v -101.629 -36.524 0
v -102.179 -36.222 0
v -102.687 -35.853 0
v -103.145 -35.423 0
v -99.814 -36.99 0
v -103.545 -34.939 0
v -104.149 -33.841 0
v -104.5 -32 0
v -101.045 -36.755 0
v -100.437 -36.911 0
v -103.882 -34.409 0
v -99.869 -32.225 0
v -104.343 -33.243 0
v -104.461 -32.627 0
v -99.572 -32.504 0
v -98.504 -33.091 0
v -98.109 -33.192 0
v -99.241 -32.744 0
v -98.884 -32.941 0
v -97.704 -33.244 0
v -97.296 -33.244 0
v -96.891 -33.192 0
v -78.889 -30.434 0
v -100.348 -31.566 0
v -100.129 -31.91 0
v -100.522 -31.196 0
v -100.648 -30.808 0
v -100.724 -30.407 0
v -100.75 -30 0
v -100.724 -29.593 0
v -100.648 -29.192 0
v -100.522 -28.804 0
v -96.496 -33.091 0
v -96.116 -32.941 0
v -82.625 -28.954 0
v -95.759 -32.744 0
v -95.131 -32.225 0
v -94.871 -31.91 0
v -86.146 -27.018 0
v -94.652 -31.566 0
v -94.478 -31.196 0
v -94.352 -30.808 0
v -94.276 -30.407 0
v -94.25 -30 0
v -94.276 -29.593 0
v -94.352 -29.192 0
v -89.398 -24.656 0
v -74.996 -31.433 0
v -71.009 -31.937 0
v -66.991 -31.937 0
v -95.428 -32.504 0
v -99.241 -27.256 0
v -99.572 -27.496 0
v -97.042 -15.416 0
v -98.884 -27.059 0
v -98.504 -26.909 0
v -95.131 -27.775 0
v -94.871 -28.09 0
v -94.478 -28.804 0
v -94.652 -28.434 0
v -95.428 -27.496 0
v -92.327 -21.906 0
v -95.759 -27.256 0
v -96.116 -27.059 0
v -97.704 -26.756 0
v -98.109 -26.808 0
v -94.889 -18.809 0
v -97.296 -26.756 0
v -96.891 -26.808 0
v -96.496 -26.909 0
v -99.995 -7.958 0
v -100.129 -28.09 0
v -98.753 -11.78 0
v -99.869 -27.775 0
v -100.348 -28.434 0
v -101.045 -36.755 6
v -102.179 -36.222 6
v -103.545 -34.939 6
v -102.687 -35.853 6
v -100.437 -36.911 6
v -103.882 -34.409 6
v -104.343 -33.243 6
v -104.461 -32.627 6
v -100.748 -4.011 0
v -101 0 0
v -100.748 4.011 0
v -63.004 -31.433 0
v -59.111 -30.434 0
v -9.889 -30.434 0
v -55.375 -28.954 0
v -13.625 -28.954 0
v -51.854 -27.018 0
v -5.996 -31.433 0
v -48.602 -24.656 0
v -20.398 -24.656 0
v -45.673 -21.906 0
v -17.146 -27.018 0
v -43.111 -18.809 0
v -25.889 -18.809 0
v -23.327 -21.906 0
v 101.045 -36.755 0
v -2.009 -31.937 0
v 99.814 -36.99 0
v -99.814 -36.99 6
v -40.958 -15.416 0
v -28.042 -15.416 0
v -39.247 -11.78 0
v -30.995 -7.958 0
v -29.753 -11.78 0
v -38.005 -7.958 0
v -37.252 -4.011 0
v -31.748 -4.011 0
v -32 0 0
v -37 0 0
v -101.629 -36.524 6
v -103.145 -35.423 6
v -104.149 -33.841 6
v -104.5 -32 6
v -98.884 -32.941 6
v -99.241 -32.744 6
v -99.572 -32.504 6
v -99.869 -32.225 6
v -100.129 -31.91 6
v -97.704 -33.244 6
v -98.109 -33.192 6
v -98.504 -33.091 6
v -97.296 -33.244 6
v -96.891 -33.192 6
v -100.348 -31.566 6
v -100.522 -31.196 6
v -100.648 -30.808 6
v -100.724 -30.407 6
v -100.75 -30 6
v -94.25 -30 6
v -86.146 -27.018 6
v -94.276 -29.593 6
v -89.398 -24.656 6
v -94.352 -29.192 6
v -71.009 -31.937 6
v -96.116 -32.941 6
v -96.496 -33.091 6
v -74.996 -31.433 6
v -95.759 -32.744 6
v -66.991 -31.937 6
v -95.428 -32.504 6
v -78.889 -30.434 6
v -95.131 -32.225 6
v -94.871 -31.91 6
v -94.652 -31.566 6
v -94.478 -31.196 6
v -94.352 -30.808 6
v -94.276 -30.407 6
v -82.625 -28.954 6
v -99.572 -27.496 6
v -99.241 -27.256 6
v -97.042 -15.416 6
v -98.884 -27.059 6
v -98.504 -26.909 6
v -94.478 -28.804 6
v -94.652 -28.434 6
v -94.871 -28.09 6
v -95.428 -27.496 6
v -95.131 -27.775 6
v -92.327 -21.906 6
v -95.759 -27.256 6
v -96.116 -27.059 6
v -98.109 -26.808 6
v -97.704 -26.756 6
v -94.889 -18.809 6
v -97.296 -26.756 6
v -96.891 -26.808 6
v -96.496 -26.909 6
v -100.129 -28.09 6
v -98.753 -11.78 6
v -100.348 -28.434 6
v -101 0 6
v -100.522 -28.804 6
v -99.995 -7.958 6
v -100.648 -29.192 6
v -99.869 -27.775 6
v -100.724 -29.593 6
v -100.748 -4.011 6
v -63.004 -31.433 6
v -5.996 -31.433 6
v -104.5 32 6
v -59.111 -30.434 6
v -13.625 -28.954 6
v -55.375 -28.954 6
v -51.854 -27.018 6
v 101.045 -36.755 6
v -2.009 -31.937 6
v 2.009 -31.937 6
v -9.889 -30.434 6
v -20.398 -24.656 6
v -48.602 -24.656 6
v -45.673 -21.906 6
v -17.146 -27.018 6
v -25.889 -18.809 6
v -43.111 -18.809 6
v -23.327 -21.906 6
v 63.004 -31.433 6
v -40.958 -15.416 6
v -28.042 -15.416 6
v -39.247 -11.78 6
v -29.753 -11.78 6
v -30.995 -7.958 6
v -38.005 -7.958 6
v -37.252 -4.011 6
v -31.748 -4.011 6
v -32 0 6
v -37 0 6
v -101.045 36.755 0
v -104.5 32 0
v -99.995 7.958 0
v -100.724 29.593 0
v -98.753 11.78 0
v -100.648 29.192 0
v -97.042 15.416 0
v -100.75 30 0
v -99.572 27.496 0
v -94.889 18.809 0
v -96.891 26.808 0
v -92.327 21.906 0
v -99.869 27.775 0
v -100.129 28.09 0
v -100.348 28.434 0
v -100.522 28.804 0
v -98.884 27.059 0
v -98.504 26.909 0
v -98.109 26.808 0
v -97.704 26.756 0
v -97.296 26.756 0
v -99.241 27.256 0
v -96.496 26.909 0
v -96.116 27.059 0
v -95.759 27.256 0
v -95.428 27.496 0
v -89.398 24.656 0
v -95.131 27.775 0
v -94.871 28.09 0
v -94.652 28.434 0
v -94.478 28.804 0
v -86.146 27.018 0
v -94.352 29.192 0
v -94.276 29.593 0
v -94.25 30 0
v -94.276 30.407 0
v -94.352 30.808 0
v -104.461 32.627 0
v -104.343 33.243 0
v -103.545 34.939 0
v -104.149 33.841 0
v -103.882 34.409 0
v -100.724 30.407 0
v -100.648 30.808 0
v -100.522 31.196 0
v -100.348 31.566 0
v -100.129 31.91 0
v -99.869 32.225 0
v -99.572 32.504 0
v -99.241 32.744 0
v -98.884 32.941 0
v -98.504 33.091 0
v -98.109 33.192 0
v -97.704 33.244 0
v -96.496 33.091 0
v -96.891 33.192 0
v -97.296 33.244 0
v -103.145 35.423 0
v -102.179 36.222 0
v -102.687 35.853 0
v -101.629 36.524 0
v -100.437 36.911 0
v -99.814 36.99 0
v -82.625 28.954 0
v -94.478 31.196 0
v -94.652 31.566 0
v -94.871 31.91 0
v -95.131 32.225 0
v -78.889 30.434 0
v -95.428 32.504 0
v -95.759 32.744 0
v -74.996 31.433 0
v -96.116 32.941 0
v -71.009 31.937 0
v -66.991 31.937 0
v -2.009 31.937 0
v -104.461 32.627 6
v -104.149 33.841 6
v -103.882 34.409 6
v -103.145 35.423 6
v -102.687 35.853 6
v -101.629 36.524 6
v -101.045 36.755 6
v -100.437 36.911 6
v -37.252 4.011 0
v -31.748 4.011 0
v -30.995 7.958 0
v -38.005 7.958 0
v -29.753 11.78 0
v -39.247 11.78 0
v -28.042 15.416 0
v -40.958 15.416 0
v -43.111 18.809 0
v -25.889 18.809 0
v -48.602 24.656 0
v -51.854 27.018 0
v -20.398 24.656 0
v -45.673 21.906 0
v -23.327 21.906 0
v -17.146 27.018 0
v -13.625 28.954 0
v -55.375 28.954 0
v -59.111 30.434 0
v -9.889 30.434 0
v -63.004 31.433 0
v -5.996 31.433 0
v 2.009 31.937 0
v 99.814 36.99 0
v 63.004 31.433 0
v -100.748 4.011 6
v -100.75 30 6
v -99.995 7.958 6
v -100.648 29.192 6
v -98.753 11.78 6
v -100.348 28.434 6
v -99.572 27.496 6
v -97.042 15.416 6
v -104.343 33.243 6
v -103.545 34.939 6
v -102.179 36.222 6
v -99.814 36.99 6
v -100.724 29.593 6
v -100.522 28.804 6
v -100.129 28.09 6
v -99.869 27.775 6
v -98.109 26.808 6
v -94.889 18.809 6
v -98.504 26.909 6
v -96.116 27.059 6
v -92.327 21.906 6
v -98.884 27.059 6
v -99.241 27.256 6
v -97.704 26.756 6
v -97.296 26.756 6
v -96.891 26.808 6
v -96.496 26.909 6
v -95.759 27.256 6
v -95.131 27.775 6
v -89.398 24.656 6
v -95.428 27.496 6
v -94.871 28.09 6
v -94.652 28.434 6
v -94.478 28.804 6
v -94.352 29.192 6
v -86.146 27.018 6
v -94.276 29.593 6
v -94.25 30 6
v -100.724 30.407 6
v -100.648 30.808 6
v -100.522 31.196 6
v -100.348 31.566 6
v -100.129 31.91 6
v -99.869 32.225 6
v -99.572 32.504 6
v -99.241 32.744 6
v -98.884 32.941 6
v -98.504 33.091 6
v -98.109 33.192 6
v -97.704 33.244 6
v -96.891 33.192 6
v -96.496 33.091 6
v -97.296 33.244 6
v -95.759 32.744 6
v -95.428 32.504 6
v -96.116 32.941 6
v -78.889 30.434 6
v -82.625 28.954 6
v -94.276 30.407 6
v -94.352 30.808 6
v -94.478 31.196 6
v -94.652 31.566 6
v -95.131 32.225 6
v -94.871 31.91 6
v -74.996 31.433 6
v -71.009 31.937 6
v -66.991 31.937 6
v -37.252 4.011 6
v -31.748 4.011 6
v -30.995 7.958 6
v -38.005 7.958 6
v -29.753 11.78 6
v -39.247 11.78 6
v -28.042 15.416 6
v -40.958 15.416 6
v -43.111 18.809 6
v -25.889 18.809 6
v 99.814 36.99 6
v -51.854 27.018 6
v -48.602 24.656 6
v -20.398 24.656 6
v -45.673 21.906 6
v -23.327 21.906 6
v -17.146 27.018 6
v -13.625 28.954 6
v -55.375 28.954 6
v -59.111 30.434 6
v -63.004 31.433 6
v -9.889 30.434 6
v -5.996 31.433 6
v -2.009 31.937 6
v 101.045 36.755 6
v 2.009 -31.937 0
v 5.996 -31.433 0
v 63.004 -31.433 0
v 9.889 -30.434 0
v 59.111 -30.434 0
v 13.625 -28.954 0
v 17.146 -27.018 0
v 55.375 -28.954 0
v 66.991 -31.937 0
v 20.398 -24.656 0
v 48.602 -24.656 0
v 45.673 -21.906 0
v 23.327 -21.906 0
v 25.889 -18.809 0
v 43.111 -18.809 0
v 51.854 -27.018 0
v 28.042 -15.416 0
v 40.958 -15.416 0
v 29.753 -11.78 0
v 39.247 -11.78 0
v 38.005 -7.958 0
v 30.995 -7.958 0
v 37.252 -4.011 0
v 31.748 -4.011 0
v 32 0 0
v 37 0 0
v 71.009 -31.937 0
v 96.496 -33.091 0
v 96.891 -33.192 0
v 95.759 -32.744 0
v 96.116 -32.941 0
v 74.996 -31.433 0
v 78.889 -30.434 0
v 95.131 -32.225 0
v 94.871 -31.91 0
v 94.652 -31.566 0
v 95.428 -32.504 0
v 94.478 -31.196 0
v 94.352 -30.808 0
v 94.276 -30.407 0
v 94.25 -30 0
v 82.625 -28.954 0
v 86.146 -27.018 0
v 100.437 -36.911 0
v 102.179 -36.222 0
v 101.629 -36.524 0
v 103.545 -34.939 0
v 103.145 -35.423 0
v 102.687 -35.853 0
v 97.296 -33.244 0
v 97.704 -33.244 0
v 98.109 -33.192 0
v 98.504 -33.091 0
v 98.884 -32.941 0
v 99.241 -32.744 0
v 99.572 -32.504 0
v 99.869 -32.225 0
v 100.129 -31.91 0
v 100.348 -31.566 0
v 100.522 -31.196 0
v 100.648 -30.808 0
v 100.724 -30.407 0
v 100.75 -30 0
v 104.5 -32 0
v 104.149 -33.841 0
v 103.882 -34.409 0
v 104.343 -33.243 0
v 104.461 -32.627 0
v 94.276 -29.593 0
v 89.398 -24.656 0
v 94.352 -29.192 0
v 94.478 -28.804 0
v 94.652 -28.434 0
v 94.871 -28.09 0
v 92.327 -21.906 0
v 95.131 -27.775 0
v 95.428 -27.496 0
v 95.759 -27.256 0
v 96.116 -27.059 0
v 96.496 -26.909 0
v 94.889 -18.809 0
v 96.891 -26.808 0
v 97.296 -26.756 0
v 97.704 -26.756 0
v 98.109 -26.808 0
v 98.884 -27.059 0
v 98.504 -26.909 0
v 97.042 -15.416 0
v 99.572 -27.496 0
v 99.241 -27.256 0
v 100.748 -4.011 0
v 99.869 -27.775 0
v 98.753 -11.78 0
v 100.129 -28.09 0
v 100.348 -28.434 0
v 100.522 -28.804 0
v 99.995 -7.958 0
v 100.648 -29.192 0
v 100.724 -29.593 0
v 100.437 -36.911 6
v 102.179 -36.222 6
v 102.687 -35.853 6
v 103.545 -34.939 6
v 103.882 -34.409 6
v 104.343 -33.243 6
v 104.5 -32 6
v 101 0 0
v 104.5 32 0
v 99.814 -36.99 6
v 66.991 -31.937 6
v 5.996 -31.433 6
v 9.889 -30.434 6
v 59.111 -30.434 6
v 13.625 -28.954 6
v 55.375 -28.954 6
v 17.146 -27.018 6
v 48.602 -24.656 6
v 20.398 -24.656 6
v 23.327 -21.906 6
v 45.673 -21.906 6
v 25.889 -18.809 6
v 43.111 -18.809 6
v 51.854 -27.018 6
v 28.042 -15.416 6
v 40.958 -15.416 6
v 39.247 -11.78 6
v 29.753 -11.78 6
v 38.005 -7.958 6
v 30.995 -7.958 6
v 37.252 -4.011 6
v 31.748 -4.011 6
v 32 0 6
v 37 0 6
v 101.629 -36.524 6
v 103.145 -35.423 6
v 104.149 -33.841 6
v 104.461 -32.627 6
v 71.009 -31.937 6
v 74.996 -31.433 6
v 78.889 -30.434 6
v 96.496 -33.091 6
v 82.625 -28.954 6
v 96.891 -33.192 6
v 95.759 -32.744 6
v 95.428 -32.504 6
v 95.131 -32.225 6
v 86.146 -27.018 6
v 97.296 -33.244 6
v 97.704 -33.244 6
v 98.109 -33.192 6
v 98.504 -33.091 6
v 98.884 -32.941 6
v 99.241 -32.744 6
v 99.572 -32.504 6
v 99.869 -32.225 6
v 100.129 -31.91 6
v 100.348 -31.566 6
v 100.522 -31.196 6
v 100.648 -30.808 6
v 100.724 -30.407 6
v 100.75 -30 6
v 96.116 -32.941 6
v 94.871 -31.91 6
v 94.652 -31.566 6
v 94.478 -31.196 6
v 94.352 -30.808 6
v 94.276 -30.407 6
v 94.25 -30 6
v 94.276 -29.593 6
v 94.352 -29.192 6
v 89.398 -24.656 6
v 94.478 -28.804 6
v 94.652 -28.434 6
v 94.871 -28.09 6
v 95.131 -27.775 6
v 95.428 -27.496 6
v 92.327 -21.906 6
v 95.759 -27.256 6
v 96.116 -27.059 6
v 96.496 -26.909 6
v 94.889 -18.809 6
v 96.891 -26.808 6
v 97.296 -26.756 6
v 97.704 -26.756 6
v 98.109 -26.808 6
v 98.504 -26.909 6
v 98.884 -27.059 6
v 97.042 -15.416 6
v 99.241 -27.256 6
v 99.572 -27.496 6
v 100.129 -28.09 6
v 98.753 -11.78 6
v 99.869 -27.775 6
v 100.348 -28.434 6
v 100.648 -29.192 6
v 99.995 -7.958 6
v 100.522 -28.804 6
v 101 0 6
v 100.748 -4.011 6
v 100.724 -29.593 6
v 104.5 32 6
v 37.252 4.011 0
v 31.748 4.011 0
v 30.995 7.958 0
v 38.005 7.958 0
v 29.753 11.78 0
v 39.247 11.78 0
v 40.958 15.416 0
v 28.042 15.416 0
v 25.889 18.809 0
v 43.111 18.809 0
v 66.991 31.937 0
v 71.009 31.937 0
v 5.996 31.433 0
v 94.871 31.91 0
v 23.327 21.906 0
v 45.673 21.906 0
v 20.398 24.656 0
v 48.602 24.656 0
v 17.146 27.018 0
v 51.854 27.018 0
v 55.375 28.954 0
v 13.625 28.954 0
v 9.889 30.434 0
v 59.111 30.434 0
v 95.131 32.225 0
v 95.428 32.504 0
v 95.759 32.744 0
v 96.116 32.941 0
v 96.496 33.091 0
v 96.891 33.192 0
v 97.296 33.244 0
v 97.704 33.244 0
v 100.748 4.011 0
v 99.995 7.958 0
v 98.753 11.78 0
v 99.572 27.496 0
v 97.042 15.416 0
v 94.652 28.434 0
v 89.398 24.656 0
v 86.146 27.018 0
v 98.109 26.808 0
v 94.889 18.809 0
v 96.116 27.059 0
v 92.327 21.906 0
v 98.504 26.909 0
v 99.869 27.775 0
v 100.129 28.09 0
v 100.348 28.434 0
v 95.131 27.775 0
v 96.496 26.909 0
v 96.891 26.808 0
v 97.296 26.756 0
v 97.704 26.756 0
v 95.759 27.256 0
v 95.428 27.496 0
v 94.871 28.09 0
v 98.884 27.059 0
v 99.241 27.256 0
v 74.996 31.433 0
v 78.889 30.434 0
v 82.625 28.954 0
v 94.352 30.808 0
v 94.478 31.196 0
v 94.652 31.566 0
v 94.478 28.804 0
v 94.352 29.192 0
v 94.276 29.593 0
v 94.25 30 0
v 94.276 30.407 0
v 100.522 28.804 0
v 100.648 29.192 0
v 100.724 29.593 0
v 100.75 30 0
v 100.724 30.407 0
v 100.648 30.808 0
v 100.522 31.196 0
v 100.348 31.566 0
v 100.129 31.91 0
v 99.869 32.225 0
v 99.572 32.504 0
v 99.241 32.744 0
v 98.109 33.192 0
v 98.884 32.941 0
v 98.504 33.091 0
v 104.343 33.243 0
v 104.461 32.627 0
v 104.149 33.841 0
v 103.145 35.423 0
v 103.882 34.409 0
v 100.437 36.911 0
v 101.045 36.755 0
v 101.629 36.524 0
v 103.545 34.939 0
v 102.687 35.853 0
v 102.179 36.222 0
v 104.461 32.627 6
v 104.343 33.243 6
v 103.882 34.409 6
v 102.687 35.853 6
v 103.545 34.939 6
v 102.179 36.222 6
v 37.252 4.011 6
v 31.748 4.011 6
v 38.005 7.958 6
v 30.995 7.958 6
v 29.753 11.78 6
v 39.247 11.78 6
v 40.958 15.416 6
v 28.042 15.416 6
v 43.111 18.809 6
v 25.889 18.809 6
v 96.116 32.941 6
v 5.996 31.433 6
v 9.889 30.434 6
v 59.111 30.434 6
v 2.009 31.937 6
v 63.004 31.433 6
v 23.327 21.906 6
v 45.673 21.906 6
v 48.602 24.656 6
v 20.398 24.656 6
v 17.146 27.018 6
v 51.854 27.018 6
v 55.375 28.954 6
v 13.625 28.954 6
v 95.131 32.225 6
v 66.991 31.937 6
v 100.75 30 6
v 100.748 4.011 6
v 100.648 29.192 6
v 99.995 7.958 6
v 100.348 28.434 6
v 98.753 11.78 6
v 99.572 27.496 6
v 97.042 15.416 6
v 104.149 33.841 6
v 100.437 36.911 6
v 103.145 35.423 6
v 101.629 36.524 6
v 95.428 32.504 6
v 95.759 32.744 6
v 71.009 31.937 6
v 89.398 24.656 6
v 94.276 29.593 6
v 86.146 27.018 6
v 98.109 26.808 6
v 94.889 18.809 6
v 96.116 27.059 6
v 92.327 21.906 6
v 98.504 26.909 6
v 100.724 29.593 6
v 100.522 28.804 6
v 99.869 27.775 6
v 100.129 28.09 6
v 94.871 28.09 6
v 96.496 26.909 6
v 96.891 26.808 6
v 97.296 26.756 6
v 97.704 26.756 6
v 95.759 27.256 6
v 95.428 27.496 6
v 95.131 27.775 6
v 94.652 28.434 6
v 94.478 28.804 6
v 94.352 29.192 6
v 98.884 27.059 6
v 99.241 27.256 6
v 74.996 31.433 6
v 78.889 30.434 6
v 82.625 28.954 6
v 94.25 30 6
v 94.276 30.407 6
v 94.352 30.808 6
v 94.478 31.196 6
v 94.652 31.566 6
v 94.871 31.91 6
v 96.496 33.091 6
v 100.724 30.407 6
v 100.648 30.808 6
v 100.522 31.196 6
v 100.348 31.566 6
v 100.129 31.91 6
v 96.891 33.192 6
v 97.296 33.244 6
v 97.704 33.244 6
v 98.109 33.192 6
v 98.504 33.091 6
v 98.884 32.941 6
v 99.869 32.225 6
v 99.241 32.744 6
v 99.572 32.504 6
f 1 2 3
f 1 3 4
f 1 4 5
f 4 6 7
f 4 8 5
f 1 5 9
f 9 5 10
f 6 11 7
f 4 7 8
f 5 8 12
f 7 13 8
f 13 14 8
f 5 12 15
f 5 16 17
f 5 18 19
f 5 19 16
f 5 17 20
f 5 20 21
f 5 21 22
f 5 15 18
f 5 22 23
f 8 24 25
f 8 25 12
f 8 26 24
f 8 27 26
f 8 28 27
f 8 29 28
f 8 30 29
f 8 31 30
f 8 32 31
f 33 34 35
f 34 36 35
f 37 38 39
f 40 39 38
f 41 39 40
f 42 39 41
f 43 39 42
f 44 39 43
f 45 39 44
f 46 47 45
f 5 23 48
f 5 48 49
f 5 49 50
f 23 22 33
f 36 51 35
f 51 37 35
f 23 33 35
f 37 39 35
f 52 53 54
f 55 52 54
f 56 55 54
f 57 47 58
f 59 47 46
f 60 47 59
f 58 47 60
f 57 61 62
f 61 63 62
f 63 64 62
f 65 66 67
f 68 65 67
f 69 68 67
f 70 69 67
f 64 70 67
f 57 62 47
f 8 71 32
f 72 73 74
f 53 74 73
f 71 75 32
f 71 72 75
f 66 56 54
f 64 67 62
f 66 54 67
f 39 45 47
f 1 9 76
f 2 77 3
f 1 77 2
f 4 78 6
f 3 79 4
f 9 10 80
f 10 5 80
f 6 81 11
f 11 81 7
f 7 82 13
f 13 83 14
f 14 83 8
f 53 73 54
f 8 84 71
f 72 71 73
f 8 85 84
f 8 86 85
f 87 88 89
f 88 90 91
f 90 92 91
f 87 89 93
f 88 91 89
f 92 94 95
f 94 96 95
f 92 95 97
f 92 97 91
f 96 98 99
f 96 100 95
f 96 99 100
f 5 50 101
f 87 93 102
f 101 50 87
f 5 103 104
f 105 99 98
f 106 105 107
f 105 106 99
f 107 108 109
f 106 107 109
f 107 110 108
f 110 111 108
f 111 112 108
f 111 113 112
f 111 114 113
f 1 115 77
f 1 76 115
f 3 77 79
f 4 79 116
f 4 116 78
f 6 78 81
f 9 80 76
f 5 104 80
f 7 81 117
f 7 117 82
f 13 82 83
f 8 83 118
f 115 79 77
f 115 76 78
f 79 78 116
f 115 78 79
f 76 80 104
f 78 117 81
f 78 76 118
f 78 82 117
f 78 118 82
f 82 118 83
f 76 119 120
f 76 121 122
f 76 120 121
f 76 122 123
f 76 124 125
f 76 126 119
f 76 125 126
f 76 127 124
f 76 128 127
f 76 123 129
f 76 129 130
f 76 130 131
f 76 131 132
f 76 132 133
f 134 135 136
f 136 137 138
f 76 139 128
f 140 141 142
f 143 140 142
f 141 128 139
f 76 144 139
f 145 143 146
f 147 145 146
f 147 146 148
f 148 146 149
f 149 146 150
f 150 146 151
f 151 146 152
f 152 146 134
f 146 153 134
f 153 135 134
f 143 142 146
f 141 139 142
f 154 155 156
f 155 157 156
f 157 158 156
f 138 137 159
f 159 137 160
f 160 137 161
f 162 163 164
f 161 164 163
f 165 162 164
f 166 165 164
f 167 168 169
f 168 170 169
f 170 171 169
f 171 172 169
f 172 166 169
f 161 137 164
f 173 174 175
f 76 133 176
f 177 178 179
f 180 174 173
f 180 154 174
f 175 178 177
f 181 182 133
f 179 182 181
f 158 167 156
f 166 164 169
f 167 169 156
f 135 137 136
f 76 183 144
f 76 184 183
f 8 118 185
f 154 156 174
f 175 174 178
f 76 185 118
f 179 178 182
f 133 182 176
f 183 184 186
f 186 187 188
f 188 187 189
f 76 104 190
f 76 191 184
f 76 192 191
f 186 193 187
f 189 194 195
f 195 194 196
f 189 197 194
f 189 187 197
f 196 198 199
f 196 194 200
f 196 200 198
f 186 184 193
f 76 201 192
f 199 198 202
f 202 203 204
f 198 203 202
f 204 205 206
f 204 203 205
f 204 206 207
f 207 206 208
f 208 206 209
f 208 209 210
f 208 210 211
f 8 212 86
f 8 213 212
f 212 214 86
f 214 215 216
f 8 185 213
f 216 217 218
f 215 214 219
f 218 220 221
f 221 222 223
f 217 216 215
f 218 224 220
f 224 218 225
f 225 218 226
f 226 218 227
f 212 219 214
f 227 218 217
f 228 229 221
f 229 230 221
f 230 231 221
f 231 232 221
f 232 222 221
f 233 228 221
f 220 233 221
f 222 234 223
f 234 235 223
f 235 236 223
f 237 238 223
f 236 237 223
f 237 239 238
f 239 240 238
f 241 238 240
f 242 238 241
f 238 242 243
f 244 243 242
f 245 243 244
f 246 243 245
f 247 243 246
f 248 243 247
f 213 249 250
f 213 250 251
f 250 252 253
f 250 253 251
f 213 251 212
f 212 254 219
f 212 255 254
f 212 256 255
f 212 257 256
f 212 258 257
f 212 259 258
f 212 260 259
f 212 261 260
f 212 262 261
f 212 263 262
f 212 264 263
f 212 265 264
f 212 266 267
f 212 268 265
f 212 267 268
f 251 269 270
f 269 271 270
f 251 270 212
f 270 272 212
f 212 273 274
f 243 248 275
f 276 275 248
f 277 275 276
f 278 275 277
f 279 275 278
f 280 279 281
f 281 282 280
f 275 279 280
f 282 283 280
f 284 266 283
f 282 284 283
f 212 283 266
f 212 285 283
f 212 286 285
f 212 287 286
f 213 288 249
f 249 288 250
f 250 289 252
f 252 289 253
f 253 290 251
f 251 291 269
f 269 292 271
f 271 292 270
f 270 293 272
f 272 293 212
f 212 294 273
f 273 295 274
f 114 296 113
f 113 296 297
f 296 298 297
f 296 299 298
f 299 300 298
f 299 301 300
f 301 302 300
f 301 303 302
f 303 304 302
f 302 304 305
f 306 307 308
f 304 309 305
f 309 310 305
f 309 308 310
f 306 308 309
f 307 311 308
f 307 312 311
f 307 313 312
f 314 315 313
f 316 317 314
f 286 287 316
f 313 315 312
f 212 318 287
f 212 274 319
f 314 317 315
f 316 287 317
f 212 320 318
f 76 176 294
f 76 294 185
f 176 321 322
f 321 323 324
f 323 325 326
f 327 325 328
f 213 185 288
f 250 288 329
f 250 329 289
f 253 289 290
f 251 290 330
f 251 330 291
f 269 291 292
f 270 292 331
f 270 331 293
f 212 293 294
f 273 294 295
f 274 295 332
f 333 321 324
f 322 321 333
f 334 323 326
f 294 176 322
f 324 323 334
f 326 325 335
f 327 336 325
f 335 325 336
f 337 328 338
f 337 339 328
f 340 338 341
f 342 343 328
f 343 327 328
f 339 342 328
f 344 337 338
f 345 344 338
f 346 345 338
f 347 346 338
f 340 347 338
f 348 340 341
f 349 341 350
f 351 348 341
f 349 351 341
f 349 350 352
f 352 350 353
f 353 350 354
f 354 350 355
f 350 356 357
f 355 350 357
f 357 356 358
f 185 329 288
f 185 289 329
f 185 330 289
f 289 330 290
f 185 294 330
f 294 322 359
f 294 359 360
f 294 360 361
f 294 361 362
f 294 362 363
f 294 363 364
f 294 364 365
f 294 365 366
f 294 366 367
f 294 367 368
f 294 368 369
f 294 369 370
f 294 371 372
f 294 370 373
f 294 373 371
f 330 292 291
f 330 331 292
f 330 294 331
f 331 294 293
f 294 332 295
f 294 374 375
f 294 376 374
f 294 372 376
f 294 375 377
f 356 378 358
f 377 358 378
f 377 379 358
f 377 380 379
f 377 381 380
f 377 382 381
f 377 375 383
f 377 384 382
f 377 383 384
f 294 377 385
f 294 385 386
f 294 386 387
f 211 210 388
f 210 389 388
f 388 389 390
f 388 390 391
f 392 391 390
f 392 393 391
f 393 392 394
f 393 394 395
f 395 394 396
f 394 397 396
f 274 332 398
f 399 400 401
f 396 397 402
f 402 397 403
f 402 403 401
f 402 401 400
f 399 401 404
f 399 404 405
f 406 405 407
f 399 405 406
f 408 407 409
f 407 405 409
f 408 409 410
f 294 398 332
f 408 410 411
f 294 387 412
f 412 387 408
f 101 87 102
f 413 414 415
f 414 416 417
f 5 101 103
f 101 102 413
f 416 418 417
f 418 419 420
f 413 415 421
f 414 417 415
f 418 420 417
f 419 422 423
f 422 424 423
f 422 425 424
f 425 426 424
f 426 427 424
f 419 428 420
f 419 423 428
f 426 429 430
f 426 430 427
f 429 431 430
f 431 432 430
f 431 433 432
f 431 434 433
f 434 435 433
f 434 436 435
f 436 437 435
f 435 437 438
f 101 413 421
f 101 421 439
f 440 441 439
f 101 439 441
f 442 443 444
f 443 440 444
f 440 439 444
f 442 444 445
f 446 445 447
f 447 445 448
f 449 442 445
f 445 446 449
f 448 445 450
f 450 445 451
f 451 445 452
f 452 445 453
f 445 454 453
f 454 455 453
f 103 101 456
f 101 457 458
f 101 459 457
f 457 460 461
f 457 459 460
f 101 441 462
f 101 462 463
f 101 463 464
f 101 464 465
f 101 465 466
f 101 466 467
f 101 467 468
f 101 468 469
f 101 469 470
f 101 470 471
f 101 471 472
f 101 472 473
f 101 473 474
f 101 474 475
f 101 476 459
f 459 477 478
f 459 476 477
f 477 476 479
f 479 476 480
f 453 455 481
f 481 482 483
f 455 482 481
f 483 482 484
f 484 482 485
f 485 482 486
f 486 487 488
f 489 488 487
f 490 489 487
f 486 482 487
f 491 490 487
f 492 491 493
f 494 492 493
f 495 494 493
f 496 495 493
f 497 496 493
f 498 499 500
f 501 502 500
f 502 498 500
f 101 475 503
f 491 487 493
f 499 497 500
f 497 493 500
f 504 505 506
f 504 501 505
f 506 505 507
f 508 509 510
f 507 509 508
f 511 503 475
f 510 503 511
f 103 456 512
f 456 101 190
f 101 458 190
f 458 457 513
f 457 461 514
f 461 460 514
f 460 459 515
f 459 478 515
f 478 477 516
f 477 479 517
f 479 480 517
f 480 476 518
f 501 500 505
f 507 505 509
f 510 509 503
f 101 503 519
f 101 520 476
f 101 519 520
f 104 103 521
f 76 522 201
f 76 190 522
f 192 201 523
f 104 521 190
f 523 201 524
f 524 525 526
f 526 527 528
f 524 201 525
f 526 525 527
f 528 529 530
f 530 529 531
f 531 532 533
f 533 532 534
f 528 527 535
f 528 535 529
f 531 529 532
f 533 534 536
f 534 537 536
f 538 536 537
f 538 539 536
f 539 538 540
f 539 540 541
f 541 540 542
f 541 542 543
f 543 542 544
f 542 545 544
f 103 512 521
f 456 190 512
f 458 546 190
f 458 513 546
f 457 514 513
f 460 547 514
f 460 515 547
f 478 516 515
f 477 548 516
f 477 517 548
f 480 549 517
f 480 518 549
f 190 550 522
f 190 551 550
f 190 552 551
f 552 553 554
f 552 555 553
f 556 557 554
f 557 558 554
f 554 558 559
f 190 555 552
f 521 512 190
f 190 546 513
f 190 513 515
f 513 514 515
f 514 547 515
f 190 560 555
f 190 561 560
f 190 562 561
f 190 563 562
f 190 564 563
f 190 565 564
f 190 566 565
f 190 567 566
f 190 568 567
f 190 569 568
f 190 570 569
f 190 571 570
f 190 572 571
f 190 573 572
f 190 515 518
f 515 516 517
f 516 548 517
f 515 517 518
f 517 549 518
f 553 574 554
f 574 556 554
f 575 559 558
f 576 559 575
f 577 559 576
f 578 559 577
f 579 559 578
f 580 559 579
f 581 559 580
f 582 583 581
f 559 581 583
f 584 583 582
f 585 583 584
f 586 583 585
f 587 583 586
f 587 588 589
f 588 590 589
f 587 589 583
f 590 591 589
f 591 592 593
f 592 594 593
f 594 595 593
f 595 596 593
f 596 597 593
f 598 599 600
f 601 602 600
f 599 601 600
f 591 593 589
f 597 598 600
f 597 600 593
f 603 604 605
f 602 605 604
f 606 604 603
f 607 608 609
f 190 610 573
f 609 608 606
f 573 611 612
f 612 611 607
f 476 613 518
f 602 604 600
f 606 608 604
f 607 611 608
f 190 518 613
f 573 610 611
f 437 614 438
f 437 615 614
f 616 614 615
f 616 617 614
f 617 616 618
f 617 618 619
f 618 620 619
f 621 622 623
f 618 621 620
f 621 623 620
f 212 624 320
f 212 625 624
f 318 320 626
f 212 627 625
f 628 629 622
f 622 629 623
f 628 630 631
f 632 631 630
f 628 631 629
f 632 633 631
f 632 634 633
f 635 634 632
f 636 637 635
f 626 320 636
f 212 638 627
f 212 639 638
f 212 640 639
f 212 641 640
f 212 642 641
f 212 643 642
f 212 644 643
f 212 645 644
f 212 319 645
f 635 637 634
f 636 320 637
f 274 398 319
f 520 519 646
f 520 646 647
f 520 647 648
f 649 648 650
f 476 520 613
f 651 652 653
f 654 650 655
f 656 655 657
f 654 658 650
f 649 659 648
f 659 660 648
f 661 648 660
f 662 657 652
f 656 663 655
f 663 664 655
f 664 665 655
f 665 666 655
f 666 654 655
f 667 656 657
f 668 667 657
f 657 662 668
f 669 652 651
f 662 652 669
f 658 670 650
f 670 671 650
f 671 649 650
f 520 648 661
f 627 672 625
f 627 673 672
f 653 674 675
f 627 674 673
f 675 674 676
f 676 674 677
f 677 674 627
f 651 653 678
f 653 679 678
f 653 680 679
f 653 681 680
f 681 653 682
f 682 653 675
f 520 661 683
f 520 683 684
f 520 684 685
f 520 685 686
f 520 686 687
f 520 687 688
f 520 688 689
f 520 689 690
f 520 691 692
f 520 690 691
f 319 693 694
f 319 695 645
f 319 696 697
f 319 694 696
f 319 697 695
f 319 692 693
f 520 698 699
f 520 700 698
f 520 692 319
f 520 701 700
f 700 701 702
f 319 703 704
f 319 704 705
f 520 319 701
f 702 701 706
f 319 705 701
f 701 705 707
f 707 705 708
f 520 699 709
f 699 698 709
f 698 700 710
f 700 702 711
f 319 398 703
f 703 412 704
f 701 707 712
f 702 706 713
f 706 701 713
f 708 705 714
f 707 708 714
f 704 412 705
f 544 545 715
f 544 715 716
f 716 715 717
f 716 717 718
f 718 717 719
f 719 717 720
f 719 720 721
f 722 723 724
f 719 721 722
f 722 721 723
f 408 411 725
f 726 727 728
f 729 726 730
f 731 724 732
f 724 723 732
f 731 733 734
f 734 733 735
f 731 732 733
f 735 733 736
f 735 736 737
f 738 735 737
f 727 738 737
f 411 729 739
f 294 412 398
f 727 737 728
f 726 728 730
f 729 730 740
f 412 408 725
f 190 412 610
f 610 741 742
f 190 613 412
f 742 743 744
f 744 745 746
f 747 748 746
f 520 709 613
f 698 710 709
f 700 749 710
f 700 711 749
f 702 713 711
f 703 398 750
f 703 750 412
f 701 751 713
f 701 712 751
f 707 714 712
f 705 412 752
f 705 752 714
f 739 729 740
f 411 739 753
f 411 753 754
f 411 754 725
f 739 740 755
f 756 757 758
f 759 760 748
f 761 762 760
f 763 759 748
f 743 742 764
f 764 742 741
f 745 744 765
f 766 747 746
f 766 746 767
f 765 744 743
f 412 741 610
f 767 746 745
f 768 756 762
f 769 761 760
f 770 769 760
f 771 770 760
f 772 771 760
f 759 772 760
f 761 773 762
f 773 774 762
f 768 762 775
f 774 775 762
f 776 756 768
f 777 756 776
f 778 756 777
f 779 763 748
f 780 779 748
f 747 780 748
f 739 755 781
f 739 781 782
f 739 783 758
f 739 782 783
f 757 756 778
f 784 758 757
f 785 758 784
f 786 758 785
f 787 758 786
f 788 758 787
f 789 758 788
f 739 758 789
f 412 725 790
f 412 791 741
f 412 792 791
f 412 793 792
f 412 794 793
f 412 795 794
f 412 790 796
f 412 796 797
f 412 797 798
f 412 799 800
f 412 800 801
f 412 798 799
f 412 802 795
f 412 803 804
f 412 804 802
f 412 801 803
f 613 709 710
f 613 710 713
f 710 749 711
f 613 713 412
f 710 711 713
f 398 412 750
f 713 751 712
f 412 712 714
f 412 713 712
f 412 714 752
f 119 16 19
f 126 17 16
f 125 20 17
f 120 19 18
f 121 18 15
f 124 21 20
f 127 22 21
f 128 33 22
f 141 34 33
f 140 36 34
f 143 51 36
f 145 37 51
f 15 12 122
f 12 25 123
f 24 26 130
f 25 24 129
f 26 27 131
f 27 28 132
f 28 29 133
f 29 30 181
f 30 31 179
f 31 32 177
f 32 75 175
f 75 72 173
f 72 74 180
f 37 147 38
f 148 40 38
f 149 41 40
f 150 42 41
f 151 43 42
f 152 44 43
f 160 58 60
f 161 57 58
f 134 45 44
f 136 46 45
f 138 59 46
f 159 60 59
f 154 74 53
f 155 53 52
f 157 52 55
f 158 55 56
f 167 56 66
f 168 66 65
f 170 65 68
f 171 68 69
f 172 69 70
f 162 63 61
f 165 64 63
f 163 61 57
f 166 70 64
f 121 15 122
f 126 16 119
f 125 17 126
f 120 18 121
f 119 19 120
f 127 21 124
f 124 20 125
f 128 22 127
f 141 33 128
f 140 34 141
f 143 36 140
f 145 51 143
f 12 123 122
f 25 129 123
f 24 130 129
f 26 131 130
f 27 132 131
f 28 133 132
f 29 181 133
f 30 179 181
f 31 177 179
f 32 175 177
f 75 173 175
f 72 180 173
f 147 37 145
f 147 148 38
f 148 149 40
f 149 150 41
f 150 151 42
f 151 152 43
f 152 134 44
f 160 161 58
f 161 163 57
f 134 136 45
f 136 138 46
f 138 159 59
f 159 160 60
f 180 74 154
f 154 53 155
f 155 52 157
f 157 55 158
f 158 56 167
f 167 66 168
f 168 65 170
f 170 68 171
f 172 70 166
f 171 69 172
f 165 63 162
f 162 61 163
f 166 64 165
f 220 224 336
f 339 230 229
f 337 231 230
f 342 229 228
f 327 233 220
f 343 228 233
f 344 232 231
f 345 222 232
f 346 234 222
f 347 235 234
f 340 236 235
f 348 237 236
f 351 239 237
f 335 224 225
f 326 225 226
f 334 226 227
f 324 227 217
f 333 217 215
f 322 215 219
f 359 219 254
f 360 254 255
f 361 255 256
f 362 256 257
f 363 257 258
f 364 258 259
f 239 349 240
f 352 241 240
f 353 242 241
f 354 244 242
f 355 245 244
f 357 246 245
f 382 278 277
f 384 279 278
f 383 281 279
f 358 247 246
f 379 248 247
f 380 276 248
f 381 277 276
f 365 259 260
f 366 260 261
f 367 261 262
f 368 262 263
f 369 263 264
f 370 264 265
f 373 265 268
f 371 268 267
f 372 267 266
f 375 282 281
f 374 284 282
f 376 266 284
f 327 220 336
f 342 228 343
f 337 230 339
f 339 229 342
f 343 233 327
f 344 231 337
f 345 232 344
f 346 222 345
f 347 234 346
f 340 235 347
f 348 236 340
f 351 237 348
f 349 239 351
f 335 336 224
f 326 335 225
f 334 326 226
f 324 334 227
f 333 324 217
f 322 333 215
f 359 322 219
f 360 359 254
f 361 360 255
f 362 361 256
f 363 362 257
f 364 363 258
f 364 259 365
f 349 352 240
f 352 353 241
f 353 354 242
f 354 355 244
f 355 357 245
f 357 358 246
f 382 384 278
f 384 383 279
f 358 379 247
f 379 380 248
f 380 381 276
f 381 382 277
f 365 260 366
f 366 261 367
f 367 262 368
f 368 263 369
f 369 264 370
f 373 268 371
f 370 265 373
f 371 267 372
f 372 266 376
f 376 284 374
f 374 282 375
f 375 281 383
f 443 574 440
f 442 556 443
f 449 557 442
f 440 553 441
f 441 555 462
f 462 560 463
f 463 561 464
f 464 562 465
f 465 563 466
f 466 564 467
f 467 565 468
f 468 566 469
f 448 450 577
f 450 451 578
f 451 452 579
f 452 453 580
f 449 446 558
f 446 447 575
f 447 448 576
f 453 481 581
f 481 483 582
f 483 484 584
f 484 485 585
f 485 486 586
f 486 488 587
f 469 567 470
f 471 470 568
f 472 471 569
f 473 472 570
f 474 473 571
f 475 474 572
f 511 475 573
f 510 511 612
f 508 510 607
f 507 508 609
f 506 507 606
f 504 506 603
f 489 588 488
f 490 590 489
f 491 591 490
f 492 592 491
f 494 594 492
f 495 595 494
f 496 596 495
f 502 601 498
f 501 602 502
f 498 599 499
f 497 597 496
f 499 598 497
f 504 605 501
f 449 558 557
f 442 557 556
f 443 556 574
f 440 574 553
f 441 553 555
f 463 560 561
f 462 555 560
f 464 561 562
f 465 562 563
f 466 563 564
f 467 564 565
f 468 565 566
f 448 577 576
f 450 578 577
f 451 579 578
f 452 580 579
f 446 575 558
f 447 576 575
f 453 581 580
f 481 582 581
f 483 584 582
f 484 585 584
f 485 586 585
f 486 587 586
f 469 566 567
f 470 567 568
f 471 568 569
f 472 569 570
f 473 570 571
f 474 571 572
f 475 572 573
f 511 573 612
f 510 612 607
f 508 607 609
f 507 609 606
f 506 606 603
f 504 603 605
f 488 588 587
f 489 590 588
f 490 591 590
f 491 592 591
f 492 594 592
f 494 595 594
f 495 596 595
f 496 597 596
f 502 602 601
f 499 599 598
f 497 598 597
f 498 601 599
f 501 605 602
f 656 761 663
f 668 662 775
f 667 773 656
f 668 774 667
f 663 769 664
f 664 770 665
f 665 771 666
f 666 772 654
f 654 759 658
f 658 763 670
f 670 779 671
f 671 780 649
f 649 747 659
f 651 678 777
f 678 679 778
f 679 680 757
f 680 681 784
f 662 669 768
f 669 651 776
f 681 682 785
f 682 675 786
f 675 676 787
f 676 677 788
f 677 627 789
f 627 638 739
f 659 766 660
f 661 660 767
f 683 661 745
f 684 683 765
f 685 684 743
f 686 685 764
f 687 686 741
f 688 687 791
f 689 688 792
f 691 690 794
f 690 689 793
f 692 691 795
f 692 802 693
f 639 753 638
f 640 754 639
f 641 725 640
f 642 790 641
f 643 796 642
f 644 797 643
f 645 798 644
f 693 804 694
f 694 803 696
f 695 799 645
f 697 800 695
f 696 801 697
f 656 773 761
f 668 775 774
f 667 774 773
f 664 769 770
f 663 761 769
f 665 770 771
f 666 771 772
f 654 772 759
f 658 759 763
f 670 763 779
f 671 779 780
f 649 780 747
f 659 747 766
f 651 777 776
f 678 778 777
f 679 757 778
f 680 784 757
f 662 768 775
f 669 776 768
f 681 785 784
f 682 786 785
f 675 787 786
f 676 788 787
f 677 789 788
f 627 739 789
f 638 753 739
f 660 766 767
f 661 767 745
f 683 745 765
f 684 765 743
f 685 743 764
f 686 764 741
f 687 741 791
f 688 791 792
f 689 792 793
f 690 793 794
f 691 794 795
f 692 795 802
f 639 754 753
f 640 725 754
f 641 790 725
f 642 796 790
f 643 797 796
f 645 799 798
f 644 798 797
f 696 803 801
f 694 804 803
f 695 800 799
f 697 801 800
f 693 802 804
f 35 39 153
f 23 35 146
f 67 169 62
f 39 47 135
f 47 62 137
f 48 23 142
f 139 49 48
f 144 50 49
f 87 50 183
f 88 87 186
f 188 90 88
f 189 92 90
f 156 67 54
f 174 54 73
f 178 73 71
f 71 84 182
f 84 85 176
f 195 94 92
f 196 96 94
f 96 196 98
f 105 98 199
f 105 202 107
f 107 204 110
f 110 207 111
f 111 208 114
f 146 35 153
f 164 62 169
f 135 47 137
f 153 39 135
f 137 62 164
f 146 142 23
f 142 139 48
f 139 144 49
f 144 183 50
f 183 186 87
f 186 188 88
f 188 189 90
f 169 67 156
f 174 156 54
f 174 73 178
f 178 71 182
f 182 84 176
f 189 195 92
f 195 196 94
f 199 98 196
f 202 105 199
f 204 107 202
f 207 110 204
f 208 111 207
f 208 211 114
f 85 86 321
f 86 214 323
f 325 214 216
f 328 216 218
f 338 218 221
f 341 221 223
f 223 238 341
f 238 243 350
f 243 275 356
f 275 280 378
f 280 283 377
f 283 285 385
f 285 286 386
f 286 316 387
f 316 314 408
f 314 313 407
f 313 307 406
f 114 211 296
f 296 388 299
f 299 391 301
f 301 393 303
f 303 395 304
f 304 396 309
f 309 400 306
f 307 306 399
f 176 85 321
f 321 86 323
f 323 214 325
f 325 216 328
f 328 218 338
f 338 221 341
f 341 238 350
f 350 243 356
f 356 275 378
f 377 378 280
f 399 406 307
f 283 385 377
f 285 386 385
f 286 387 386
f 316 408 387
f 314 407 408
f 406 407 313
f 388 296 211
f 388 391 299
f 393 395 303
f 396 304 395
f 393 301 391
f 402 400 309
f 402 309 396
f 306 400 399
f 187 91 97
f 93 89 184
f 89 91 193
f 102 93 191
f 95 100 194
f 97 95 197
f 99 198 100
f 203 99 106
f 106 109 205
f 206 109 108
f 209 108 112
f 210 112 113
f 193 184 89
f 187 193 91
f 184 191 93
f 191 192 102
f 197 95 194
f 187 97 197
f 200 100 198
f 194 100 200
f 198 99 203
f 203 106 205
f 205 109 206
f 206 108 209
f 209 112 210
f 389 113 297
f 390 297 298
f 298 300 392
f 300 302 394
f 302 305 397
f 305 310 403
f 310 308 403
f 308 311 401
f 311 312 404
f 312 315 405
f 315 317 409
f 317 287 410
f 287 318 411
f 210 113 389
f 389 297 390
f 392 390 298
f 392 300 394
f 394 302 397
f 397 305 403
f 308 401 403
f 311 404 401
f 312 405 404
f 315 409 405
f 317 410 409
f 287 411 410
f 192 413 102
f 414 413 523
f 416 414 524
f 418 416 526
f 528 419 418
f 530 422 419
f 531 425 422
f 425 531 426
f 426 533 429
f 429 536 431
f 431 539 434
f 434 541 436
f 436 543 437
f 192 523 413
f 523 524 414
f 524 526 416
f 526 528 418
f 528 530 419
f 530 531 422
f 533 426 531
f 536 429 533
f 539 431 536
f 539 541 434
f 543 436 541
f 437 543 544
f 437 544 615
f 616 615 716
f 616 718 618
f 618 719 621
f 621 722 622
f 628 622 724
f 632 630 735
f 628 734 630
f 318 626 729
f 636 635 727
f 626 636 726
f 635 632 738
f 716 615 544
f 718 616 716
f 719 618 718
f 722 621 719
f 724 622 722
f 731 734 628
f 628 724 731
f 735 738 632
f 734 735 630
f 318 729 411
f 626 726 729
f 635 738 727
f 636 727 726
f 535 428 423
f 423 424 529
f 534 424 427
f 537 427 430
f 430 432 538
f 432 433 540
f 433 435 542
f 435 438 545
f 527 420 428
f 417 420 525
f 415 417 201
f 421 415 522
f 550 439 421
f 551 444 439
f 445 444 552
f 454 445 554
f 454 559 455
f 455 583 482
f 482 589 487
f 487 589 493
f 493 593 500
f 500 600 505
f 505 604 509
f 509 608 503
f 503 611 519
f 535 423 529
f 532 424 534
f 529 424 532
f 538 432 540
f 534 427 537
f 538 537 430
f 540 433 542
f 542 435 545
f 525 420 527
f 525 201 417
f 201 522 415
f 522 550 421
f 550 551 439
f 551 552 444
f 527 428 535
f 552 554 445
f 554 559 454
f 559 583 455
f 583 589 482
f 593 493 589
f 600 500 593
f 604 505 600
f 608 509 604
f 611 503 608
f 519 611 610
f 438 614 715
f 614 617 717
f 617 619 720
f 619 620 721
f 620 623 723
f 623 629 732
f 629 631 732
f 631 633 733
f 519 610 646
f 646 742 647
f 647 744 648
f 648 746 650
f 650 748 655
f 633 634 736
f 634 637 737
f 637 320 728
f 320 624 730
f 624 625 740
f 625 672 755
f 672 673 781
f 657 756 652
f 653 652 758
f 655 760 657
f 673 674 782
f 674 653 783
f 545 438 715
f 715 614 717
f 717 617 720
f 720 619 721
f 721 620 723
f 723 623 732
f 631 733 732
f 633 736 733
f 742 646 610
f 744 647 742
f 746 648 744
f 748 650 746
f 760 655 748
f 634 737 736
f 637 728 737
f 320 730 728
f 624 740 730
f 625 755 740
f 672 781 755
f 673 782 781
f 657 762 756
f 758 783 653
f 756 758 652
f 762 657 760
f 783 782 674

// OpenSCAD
$fn = 50;

difference() {
	union() {
		hull() {
			translate(v = [-99.5, 32.0, 0]) {
				cylinder(h = 6, r = 5);
			}
			translate(v = [99.5, 32.0, 0]) {
				cylinder(h = 6, r = 5);
			}
			translate(v = [-99.5, -32.0, 0]) {
				cylinder(h = 6, r = 5);
			}
			translate(v = [99.5, -32.0, 0]) {
				cylinder(h = 6, r = 5);
			}
		}
	}
	union() {
		translate(v = [-97.5, -30.0, -100.0]) {
			cylinder(h = 200, r = 3.25);
		}
		translate(v = [-97.5, 30.0, -100.0]) {
			cylinder(h = 200, r = 3.25);
		}
		translate(v = [97.5, -30.0, -100.0]) {
			cylinder(h = 200, r = 3.25);
		}
		translate(v = [97.5, 30.0, -100.0]) {
			cylinder(h = 200, r = 3.25);
		}
		translate(v = [-97.5, -30.0, -100.0]) {
			cylinder(h = 200, r = 1.8);
		}
		translate(v = [-97.5, 30.0, -100.0]) {
			cylinder(h = 200, r = 1.8);
		}
		translate(v = [97.5, -30.0, -100.0]) {
			cylinder(h = 200, r = 1.8);
		}
		translate(v = [97.5, 30.0, -100.0]) {
			cylinder(h = 200, r = 1.8);
		}
		translate(v = [-69.0, 0, 0.0]) {
			cylinder(h = 6, r = 32.0);
		}
		cylinder(h = 6, r = 32.0);
		translate(v = [69.0, 0, 0.0]) {
			cylinder(h = 6, r = 32.0);
		}
	}
}
